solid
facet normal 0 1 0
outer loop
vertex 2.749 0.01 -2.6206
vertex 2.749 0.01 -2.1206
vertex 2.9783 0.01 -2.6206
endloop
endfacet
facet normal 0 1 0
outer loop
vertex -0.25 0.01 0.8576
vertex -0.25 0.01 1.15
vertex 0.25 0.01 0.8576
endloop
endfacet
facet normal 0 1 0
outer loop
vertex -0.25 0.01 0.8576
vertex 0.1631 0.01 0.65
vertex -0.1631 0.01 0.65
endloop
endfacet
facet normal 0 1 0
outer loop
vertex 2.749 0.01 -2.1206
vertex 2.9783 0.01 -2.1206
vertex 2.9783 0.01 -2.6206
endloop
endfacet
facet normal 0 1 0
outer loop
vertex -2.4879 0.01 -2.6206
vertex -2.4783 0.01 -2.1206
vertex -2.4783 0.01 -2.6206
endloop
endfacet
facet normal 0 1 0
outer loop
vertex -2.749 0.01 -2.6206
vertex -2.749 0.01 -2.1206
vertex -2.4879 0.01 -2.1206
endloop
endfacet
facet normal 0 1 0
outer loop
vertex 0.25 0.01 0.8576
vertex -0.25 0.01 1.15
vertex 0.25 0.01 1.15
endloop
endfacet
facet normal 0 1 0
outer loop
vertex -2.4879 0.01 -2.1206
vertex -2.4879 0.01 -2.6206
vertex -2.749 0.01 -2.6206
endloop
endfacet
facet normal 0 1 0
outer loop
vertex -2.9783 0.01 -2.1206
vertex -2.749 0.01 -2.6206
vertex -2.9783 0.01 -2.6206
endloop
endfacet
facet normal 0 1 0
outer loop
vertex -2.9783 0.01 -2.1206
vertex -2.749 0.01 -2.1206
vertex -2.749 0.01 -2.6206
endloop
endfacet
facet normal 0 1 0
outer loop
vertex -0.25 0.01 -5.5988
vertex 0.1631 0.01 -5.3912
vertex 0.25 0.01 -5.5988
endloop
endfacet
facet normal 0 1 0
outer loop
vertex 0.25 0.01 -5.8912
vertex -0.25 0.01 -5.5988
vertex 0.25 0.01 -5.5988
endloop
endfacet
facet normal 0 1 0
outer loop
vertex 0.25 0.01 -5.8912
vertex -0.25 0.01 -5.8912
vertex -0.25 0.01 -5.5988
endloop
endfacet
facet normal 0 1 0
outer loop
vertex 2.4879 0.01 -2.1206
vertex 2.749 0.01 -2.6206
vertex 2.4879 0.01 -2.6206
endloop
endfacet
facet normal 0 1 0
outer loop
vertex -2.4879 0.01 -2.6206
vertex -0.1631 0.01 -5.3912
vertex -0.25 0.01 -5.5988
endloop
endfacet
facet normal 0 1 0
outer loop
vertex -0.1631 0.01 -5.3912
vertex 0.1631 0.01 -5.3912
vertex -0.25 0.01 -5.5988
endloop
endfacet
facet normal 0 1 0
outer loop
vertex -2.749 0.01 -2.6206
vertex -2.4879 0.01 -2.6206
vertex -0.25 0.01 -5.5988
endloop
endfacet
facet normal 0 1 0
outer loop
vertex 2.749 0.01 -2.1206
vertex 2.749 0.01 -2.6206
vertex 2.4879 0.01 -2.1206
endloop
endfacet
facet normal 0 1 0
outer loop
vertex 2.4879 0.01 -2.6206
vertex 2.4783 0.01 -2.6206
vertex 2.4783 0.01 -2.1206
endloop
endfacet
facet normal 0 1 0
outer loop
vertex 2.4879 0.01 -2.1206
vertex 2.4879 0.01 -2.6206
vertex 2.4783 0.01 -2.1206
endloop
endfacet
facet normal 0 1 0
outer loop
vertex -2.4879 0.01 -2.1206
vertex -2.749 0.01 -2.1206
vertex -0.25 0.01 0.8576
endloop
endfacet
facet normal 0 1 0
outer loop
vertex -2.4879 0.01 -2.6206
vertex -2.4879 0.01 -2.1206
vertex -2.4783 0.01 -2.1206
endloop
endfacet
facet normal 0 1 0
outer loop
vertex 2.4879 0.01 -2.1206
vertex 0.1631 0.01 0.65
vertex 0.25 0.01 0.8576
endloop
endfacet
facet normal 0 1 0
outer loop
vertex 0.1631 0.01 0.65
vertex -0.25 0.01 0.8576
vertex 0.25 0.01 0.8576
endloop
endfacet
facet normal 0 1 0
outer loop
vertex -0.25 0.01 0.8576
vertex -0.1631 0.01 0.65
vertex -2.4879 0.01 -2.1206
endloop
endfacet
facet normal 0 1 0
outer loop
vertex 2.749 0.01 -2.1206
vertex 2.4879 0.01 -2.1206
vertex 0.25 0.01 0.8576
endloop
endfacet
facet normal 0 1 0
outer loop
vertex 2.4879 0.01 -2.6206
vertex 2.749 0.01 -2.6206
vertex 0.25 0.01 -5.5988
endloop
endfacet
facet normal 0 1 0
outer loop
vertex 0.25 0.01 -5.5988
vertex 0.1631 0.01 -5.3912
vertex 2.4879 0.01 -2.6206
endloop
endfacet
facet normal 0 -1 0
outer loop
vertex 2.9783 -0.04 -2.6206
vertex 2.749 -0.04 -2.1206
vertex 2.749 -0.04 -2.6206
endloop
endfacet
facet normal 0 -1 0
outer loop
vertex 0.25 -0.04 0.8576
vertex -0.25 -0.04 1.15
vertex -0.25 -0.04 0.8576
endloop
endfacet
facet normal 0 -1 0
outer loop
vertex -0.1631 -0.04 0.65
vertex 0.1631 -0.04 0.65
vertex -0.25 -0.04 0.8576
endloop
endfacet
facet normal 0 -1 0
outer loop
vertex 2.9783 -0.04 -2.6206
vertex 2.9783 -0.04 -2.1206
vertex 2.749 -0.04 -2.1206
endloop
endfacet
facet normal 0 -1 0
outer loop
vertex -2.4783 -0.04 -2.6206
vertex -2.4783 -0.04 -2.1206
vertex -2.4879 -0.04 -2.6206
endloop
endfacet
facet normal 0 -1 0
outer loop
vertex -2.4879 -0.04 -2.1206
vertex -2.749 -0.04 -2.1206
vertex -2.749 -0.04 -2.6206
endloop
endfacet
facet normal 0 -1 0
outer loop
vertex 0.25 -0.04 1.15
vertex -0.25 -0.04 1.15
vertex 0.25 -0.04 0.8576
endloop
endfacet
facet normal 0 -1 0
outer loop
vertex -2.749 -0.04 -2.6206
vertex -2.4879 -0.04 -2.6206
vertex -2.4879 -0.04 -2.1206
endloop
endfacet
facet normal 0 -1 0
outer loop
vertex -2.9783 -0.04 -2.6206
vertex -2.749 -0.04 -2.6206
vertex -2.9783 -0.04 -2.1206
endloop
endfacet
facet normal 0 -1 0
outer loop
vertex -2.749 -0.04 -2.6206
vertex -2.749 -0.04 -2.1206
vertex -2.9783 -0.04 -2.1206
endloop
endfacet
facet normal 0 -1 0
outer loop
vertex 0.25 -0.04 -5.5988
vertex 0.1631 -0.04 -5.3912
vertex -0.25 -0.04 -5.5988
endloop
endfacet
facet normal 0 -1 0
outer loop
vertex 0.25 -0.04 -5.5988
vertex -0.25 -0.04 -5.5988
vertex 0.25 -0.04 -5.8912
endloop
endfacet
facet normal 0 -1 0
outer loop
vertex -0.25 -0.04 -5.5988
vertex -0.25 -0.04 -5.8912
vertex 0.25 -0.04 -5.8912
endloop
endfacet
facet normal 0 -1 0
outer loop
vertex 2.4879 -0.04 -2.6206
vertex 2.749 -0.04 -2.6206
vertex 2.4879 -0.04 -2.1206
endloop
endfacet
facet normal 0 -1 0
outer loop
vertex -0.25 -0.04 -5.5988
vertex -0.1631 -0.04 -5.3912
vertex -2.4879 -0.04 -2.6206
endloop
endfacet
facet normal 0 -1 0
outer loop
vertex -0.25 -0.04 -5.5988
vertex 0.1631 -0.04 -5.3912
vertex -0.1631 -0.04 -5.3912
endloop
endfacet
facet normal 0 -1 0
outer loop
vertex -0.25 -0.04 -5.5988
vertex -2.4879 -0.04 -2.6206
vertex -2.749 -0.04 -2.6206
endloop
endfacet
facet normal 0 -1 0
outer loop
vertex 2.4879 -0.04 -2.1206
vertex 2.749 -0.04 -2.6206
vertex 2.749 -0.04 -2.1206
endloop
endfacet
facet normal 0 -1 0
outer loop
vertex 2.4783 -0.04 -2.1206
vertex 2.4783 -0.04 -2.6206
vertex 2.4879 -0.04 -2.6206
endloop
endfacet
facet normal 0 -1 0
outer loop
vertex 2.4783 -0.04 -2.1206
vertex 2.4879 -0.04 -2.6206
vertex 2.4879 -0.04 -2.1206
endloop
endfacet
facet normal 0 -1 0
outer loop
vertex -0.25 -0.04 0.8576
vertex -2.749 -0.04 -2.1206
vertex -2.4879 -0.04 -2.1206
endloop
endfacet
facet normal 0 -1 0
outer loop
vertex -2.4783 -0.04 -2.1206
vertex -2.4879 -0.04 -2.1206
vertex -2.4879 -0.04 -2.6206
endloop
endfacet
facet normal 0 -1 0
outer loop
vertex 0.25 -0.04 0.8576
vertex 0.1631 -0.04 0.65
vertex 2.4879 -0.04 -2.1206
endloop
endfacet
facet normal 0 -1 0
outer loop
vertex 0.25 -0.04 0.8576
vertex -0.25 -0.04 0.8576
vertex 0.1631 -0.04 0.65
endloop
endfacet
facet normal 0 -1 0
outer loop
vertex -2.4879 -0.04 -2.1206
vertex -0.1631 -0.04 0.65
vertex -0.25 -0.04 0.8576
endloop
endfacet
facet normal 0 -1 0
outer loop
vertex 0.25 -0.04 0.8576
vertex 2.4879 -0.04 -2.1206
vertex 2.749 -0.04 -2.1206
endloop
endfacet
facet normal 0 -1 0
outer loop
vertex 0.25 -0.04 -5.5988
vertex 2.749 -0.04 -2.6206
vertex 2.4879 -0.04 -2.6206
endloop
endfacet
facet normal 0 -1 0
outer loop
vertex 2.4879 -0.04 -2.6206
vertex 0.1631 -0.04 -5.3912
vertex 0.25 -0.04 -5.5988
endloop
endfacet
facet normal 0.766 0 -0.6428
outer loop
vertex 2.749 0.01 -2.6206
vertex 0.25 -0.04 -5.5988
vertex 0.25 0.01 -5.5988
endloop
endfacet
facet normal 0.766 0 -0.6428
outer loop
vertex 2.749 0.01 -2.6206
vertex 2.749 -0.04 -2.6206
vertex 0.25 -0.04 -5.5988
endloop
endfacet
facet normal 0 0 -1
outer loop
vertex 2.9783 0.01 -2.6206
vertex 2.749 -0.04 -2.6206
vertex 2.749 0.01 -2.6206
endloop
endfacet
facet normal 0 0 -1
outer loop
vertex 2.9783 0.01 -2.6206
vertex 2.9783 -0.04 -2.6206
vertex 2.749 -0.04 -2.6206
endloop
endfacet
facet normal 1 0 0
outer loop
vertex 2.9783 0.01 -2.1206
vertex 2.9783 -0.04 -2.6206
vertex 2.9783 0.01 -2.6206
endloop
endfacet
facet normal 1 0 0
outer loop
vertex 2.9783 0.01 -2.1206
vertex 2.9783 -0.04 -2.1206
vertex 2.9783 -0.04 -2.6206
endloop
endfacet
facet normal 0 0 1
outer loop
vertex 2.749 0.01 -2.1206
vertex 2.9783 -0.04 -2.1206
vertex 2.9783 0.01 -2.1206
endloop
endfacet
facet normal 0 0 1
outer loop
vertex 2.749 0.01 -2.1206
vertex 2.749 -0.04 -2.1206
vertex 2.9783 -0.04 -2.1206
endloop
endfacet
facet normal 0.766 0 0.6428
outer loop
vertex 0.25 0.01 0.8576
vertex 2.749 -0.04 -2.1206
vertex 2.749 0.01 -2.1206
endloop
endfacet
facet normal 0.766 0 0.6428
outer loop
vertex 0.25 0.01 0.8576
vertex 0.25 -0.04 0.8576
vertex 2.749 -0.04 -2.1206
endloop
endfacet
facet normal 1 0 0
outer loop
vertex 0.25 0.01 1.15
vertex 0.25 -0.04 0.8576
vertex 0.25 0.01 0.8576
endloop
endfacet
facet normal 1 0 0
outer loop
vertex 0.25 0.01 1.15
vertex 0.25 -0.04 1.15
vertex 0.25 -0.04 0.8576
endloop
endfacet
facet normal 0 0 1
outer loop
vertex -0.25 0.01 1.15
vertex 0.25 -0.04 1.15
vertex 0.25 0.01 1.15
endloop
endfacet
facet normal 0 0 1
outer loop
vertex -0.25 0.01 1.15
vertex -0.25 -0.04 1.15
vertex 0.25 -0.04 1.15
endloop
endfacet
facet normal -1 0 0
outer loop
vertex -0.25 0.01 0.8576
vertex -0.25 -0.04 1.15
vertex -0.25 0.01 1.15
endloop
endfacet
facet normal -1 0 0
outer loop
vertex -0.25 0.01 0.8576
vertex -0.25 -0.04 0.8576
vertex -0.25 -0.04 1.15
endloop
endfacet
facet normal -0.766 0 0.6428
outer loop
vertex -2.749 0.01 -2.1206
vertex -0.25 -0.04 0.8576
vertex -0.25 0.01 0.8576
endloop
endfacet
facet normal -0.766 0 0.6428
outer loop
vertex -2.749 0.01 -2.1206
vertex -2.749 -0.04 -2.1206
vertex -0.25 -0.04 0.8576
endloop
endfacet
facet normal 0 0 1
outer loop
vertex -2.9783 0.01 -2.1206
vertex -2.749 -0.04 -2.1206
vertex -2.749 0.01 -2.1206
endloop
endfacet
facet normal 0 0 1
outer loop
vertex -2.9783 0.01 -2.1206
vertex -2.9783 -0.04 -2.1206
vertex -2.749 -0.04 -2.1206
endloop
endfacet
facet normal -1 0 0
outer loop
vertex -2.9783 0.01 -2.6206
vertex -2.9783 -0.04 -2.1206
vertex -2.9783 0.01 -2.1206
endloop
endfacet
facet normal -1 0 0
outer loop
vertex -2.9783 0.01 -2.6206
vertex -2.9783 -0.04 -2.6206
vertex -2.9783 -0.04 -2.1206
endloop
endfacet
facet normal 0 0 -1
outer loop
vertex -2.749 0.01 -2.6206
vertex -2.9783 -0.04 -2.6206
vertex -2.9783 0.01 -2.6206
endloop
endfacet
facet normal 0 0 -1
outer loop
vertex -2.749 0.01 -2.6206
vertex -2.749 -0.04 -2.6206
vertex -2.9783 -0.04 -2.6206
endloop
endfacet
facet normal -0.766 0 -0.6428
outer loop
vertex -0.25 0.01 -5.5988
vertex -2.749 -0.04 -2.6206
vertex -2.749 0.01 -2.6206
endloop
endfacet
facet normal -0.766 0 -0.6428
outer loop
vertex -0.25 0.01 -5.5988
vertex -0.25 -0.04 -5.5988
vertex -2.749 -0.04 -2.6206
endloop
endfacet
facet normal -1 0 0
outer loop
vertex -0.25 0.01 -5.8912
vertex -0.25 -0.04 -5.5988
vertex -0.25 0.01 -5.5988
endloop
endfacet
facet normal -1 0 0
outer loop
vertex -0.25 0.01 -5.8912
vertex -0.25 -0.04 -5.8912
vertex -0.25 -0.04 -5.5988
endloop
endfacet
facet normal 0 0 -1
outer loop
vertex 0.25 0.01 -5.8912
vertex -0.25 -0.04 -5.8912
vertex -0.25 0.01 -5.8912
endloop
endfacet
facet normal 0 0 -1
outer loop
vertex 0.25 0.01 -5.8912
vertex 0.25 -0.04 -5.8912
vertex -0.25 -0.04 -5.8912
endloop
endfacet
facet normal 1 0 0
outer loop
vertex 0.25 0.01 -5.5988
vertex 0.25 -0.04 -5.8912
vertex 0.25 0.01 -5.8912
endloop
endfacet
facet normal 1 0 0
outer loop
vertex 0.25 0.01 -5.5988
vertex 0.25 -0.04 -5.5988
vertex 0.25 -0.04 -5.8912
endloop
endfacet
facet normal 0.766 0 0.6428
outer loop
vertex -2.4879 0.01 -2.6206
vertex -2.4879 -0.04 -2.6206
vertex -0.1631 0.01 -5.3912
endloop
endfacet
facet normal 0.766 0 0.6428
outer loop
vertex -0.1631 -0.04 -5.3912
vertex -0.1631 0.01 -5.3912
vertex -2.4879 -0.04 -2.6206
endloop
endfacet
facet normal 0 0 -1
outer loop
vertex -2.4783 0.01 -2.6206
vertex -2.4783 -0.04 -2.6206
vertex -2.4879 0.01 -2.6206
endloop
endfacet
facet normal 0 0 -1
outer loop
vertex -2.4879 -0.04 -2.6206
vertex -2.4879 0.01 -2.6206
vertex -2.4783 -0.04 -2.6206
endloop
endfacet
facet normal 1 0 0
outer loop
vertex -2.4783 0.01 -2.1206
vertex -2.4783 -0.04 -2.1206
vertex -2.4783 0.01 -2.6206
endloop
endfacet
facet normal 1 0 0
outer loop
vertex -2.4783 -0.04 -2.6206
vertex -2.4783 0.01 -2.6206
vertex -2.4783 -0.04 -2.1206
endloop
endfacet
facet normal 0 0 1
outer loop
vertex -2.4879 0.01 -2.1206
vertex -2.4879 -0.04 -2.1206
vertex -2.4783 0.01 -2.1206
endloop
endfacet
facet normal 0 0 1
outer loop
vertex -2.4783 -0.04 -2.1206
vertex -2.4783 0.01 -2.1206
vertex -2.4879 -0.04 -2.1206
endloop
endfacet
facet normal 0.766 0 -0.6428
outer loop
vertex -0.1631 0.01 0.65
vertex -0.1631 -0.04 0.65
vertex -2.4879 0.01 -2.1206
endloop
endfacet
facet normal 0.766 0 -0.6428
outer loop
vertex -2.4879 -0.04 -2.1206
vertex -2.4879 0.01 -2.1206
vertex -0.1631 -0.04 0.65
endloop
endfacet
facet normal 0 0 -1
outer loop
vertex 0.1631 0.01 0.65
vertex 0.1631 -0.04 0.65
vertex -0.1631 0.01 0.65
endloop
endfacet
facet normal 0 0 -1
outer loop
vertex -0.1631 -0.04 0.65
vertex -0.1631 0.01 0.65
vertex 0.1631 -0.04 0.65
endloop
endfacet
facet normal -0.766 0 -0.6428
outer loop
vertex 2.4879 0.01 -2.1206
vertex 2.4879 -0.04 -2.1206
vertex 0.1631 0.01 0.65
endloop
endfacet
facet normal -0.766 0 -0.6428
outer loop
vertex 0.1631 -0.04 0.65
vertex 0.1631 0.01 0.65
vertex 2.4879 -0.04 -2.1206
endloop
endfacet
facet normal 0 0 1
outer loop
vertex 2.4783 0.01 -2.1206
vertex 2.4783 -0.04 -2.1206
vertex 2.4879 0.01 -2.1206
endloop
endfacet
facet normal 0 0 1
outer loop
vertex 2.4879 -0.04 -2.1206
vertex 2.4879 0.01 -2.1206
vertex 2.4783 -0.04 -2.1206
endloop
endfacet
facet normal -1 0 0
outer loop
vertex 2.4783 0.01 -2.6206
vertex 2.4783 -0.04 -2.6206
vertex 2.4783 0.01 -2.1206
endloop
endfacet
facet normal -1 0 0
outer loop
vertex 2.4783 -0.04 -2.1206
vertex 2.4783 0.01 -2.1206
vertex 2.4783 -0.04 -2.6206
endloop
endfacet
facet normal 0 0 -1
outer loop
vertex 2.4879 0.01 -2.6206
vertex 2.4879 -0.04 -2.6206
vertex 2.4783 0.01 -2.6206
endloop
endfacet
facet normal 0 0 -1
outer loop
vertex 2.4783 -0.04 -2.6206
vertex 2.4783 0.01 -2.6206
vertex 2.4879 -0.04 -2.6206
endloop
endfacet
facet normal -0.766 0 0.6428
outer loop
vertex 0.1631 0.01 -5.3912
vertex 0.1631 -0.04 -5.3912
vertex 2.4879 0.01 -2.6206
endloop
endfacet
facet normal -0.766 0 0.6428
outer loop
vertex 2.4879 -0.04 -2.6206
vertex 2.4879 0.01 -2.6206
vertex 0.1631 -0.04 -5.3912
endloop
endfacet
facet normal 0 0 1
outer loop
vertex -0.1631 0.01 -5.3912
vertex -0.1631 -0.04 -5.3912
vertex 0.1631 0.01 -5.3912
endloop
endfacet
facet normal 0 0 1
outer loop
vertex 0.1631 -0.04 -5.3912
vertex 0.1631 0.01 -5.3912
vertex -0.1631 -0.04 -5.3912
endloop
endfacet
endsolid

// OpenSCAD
$fa = 1;
$fs = 0.04;
mag = 1;
thickness = mag * 0.05;
wback = mag * 6.235;
//wfront = mag * 5.529;
wfront = wback;
length = mag * 9.4;
f = 0.98;
base_length = 4.4;
mat_length = 0.5;
angle = 50;
pthick = 0.2;
plate_length = 0.25;


translate([0,0.01,2])
rotate([90,0,0]) 
linear_extrude(thickness) {
    
translate([0,-1-mat_length/3,0]) {
square([plate_length,plate_length/2],center=true);
translate([0,plate_length/4,0])
rotate([0,0,45])
square(plate_length*cos(45),center=true);
}
translate([-pthick/2+base_length*cos(angle), -1-base_length*sin(angle),0])
square(plate_length, center=true);
translate([pthick/2-base_length*cos(angle), -1-base_length*sin(angle),0])
square(plate_length, center=true);
translate([0, pthick/2-1-2*base_length*sin(angle),0])
square(plate_length, center=true);

translate([0,-1-pthick/2,-thickness])
//rotate([0,0,45])
square([mat_length,mat_length],center=true);

translate([pthick/2-cos(angle)*base_length,-1-sin(angle)*base_length,-thickness])
//rotate([0,0,45])
square([mat_length,mat_length],center=true);

translate([-pthick/2+cos(angle)*base_length,-1-sin(angle)*base_length,-thickness])
//rotate([0,0,45])
square([mat_length,mat_length],center=true);

translate([0,-1+pthick/2-2*sin(angle)*base_length,-thickness])
//rotate([0,0,45])
square([mat_length,mat_length],center=true);

translate([0,-1,-2*thickness])    
rotate([0,0,-angle])
//linear_extrude(thickness, center = true)
translate([base_length/2,0,0])
square([base_length,pthick], center=true);    

translate([0,-1,-2*thickness])    
rotate([0,0,angle])
translate([-base_length/2,0,0])
square([base_length,pthick], center=true);    

translate([cos(angle)*base_length,-1 -sin(angle)*base_length,-2*thickness])    
rotate([0,0,angle])
translate([-base_length/2,0,0])
square([base_length,pthick], center=true);    

translate([-cos(angle)*base_length,-1 -sin(angle)*base_length,-2*thickness])    
rotate([0,0,-angle-180])
translate([-base_length/2,0,0])
square([base_length,pthick], center=true);    
}
